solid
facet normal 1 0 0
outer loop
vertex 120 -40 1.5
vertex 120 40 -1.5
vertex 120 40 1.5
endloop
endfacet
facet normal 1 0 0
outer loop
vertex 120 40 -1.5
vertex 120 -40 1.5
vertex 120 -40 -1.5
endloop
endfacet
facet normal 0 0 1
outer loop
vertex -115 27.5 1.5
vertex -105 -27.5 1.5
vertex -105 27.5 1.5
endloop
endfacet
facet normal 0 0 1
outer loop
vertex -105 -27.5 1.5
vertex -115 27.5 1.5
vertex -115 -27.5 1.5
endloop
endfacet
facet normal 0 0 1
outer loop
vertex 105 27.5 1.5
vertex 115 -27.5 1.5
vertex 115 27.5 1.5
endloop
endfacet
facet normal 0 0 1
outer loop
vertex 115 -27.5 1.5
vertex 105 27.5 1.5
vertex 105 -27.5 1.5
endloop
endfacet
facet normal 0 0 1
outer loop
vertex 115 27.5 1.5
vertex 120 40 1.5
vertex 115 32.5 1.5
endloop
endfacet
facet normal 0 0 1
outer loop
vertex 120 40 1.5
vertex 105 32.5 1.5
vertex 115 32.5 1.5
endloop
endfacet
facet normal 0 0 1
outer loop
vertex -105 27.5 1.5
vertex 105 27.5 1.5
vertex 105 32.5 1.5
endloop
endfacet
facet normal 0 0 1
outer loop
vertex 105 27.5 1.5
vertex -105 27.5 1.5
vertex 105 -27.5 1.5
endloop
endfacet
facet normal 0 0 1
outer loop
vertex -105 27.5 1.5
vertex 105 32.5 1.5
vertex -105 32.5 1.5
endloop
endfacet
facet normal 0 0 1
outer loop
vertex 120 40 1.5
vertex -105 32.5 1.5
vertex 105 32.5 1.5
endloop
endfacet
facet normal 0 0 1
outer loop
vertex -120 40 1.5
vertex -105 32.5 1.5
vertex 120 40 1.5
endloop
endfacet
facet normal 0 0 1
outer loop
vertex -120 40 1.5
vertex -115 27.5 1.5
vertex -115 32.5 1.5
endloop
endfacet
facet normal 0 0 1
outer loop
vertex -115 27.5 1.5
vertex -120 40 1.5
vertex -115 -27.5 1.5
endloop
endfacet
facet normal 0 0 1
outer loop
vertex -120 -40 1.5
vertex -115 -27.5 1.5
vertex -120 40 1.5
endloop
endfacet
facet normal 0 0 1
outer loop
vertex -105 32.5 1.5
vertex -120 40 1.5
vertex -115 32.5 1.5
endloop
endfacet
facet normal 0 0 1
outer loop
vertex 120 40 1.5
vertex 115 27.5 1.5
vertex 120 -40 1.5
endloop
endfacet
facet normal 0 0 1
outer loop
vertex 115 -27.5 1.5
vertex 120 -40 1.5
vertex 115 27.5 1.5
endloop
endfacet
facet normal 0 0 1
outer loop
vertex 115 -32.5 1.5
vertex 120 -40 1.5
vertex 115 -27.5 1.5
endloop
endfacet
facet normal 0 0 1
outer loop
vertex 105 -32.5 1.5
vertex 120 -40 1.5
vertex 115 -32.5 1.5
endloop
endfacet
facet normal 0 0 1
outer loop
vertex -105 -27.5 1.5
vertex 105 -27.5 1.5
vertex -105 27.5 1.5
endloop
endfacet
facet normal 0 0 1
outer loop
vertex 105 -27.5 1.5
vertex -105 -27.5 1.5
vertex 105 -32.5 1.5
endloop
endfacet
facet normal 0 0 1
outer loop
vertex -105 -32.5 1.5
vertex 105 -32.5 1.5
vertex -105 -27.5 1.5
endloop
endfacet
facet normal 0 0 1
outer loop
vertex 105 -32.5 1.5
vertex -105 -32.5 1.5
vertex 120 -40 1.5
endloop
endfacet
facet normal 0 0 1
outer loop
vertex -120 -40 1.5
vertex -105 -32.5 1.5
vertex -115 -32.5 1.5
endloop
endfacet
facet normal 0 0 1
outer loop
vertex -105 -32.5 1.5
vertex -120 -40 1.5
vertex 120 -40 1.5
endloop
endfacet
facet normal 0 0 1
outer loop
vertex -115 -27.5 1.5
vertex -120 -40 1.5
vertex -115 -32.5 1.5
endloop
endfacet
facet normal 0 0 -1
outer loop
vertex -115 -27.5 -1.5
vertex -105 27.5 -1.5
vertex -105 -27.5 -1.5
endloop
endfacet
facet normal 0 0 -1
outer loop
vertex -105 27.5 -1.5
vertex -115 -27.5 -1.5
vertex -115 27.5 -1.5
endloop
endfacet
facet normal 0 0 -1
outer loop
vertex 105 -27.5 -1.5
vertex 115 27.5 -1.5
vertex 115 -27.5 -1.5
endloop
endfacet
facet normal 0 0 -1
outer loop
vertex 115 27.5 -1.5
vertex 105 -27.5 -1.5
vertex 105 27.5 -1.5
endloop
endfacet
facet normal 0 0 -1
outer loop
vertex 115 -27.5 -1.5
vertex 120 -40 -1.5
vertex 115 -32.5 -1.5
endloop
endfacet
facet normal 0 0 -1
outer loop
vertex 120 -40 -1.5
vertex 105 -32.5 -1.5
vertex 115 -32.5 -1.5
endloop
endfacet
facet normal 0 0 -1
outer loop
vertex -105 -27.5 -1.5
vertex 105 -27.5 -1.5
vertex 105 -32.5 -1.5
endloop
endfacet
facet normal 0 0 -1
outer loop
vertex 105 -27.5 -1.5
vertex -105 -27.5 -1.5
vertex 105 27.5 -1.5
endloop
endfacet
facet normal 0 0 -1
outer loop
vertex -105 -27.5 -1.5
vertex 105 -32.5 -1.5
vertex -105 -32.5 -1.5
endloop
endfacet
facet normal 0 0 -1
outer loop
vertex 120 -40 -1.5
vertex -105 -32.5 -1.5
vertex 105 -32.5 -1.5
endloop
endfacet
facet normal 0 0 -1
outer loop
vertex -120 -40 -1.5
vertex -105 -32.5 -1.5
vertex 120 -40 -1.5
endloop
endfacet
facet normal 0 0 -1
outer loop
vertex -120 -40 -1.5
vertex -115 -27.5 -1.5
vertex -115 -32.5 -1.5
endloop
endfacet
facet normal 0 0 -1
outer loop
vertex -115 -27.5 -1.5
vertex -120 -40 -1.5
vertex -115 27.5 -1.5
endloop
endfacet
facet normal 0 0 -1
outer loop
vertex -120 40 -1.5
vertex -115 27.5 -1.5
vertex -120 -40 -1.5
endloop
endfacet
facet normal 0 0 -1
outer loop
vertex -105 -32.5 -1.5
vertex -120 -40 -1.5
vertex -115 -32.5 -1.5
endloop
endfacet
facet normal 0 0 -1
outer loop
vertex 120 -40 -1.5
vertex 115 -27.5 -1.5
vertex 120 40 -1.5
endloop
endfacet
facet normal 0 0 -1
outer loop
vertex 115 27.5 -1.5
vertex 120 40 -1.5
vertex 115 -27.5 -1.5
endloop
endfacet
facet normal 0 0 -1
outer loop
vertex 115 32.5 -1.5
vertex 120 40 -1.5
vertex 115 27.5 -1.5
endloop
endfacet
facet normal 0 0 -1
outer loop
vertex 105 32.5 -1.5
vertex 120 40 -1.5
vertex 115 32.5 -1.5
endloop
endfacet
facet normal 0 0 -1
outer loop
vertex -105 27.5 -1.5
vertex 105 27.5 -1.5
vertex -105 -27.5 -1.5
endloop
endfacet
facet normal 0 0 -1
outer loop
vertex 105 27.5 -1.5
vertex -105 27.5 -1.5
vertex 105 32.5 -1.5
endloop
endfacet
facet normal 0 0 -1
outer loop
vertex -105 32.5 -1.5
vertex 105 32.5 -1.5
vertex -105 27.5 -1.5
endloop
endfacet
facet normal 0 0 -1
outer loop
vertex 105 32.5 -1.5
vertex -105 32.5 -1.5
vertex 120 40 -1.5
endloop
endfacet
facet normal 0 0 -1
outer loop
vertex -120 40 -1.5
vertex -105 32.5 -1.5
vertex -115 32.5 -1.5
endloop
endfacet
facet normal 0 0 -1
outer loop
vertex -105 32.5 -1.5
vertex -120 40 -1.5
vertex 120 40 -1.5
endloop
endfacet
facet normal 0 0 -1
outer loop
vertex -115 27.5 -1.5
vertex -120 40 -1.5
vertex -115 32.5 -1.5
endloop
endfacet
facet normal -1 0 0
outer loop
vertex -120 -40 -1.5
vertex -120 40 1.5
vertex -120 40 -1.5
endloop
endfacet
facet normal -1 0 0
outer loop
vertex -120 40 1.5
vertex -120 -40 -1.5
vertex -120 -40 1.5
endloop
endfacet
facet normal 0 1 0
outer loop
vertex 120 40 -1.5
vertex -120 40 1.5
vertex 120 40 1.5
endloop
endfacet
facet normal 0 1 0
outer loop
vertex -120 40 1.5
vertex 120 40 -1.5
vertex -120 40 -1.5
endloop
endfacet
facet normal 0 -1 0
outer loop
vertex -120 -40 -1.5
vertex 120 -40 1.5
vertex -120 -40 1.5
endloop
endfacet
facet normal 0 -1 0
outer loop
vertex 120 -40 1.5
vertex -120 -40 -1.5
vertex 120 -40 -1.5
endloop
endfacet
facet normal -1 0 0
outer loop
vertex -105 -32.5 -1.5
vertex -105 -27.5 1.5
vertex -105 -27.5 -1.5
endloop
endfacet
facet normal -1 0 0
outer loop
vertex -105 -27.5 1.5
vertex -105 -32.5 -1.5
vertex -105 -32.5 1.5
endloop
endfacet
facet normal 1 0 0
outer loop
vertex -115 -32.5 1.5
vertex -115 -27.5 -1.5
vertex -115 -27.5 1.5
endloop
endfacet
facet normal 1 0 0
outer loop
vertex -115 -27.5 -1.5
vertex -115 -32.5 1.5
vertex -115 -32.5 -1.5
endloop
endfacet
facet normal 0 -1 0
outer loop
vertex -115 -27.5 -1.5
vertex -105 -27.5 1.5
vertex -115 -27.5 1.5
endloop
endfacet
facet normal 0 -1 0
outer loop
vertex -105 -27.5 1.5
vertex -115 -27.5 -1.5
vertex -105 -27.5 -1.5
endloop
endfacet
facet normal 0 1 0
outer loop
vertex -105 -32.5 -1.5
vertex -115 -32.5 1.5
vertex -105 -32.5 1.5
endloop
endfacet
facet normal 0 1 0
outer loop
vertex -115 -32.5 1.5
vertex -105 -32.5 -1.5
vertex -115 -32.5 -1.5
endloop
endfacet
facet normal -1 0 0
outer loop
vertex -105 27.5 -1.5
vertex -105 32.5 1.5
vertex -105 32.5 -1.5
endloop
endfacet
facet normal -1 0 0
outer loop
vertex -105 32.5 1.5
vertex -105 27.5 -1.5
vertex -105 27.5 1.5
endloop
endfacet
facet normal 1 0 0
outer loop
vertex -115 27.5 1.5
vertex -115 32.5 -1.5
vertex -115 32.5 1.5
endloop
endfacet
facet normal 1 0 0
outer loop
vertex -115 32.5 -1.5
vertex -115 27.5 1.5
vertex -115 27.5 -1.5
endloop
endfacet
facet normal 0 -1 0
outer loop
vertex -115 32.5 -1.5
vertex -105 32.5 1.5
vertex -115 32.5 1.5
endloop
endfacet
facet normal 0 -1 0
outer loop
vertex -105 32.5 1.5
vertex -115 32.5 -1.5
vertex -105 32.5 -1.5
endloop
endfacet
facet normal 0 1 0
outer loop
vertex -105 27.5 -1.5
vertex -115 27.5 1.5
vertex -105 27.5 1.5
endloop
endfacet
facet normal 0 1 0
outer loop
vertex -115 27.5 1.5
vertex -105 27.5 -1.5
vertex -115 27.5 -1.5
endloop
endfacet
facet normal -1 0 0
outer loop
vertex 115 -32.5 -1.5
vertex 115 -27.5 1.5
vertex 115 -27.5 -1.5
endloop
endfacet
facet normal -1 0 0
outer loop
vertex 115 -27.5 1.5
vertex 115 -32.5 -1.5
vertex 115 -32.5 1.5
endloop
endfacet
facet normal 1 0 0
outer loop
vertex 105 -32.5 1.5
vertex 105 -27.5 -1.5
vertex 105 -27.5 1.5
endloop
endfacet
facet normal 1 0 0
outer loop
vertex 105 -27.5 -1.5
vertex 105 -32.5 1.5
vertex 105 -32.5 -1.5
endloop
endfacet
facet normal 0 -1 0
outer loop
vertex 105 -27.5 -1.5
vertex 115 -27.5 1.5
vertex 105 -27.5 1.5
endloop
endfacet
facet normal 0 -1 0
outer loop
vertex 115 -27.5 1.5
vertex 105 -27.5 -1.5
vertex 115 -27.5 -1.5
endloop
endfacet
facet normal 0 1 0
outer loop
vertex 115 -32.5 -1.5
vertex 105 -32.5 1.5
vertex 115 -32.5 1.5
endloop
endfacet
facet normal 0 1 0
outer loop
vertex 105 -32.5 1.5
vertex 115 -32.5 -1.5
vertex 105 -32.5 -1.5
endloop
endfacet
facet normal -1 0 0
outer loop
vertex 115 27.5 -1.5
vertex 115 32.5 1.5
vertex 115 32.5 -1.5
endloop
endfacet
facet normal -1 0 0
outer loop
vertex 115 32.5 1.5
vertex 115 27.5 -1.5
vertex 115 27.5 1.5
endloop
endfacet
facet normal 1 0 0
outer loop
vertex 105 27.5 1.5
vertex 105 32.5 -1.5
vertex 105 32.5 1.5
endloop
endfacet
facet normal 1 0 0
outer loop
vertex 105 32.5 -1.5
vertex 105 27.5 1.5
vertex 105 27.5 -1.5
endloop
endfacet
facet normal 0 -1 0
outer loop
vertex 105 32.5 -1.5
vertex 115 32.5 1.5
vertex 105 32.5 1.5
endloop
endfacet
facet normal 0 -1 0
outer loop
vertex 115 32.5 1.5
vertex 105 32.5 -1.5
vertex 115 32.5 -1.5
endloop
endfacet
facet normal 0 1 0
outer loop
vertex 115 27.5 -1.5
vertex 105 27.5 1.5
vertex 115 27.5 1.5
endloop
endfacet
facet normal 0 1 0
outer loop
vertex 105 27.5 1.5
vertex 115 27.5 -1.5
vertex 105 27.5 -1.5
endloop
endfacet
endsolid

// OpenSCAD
// ========================================
// a 240 x 80 x 3 mm plate with four 10 x 5 mm slots
// NeuroCAD canonical IR; dimensions are millimetres
// ========================================
$fn = 48;

difference() {
  cube(size=[240, 80, 3], center=true);
  translate([-110, -30, 0]) {
    cube(size=[10, 5, 5], center=true);
  }
  translate([-110, 30, 0]) {
    cube(size=[10, 5, 5], center=true);
  }
  translate([110, -30, 0]) {
    cube(size=[10, 5, 5], center=true);
  }
  translate([110, 30, 0]) {
    cube(size=[10, 5, 5], center=true);
  }
}
